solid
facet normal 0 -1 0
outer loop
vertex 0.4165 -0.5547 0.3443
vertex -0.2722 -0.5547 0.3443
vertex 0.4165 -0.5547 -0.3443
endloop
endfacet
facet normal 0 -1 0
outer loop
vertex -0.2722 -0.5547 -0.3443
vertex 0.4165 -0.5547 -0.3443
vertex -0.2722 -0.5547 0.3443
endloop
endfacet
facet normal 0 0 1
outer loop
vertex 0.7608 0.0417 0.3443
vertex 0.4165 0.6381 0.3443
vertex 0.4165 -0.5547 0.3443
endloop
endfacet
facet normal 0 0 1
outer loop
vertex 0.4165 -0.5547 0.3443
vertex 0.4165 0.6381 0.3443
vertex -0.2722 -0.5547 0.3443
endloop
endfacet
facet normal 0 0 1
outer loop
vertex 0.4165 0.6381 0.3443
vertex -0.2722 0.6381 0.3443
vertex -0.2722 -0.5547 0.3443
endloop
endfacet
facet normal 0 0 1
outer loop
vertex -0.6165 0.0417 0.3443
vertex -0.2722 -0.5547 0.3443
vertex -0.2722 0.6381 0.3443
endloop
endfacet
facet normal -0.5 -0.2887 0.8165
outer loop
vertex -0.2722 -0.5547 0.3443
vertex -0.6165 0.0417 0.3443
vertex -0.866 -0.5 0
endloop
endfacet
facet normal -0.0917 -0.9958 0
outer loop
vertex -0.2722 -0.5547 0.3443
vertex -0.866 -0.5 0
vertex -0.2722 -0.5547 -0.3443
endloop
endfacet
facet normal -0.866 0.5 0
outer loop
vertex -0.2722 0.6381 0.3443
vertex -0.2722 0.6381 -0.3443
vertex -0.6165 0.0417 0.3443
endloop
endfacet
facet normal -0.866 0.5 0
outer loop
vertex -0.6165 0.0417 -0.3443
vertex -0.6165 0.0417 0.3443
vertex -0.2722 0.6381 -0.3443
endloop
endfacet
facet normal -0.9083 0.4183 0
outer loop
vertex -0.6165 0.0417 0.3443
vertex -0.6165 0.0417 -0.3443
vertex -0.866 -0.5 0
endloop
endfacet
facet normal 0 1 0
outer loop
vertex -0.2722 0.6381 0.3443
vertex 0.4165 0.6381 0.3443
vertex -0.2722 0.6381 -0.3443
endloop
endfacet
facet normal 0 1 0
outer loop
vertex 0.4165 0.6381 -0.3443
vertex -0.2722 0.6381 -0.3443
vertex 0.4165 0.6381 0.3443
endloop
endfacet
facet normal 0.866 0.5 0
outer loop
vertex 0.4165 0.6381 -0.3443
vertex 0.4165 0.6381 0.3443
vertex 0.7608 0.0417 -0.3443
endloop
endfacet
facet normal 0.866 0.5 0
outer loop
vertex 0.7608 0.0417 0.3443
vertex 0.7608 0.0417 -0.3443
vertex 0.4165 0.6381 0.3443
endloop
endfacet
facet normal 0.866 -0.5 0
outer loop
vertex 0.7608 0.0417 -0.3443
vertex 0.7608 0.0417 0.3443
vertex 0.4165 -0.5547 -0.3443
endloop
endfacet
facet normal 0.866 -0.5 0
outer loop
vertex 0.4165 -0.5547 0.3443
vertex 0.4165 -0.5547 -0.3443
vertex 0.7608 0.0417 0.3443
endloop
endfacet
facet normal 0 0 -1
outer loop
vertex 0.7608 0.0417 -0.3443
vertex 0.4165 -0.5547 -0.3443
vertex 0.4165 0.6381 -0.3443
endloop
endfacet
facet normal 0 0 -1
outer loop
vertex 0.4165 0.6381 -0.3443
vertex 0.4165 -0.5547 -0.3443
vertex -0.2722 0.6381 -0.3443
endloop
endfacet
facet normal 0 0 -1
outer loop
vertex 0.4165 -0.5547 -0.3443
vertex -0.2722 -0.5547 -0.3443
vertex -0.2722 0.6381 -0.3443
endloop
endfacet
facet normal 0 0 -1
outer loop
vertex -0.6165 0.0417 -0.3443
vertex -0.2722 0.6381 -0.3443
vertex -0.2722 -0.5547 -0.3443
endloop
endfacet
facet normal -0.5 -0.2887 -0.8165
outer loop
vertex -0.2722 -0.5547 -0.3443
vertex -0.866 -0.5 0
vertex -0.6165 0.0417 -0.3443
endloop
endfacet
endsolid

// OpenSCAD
polyhedron( points = [[-0.272154898668278, -0.554719445349406, 0.344323682295301], [-0.616478580978333, 0.0416666667432613, 0.344323682295301], [-0.272154898614727, 0.638052778681342, 0.344323682295301], [0.416492465969679, 0.638052778619501, 0.344323682295301], [0.760816148226183, 0.0416666666195898, 0.344323682295301], [0.41649246591613, -0.554719445349406, 0.344323682295301], [-0.27215489863736, -0.554719445295854, -0.344323682289107], [-0.616478580916498, 0.0416666667432633, -0.344323682289107], [-0.272154898583809, 0.638052778627786, -0.344323682289107], [0.416492466031519, 0.638052778565952, -0.344323682258189], [0.76081614816435, 0.0416666666195898, -0.344323682289107], [0.41649246591613, -0.554719445295854, -0.344323682320027], [-0.866025403824987, -0.499999999929768, -3.71613635581036e-11]], faces = [[0, 6, 11, 5], [0, 5, 4, 3, 2, 1], [0, 1, 12], [0, 12, 6], [1, 2, 8, 7], [1, 7, 12], [2, 3, 9, 8], [3, 4, 10, 9], [4, 5, 11, 10], [6, 7, 8, 9, 10, 11], [6, 12, 7]]);
